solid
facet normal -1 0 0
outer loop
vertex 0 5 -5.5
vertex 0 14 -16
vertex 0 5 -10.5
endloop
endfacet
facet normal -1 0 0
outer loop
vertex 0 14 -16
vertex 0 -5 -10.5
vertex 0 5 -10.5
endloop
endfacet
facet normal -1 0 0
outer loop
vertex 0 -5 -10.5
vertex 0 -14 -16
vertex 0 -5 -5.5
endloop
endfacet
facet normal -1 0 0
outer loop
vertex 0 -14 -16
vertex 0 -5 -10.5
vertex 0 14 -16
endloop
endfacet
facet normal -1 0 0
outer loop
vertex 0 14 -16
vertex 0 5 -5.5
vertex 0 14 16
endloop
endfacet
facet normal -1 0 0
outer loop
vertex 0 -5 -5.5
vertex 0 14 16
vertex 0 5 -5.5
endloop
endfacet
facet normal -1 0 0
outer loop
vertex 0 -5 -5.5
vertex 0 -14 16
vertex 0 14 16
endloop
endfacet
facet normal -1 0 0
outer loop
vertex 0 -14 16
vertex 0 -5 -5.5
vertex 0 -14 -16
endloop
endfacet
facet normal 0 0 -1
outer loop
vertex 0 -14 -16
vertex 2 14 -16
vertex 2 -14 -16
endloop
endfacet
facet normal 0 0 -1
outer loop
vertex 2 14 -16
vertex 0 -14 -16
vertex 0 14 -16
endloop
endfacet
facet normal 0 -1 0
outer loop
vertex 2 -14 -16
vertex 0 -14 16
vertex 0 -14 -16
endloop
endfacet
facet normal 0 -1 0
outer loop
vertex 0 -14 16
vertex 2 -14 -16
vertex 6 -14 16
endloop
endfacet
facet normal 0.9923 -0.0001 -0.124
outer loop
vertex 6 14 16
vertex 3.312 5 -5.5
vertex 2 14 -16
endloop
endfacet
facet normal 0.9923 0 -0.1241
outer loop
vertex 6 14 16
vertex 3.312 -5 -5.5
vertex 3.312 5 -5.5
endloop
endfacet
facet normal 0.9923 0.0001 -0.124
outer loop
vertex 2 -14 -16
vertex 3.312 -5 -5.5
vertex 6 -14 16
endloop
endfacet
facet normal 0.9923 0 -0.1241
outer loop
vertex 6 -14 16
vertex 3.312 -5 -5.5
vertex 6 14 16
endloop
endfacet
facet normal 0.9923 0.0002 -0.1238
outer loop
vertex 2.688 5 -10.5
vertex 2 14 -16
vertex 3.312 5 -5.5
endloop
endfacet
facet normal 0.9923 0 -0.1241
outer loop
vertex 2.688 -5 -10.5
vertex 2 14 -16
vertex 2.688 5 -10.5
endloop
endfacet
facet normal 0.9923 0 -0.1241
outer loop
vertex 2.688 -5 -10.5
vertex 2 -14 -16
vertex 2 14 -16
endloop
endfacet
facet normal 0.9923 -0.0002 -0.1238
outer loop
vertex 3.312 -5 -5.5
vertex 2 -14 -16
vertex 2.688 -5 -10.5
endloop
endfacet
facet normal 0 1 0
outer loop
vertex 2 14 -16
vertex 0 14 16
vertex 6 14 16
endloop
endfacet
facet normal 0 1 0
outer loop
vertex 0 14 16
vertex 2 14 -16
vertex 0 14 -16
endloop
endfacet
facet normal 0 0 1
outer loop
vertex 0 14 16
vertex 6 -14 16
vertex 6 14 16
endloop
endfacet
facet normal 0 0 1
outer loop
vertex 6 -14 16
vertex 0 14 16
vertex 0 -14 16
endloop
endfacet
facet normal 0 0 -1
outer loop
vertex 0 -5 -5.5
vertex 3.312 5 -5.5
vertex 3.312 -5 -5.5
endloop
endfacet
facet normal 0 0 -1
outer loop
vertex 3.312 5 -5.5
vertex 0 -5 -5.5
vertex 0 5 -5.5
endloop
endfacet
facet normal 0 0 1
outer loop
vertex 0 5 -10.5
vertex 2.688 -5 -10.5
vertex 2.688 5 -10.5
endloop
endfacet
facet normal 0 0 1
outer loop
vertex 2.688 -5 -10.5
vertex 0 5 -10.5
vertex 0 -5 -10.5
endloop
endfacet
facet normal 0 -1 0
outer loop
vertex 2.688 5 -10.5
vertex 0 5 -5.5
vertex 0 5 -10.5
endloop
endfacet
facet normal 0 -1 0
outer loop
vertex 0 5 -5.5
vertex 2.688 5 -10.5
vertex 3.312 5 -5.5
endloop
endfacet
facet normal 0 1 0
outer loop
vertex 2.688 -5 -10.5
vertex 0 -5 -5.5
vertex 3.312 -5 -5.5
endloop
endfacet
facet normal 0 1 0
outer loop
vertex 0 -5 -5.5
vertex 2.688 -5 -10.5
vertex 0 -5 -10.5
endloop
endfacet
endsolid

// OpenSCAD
/*
  Q8bot XIAO ESP32S3 Sense front-face camera bracket

  This lightweight bracket is a front-face camera plate for the XIAO ESP32S3
  Sense module, with a slight downward camera tilt.

  The robot-facing side is flat for double-sided tape. The whole printed plate
  is wedge-shaped, with one side thin and the other side thick, so the Sense
  module clips onto a tilted front face.

  Orientation: X is robot length, +X is forward, Y is width, Z is up.
  Print orientation: back plate flat on bed.
*/

$fn = 48;
eps = 0.12;

// -------------------- User parameters --------------------
bracket_w = 28;
bracket_h = 32;
bracket_t_min = 2.0;
bracket_t_max = 6.0;
corner_r = 2.4;

// XIAO ESP32S3 Sense published assembled size is about 21 x 17.8 x 15 mm. The
// printed bracket supports the back side only; the camera/front side faces out.
sense_len = 21.0;
sense_w = 17.8;
sense_outline_clearance = 0.8;

// Optional low side lips only help locate the module while tape cures; they do
// not cover the camera side.
locating_lip_t = 1.2;
locating_lip_h = 2.0;
locating_lip_len = 18.0;

// Cable relief for the Sense board and antenna pigtails.
cable_slot_w = 10;
cable_slot_h = 5;
cable_slot_z = -8;

module front_face_bracket() {
  difference() {
    union() {
      wedge_plate();
    }

    // Cable pass-through below the Sense footprint.
    translate([0, 0, cable_slot_z])
      cube([bracket_t_max + 2.0, cable_slot_w, cable_slot_h], center = true);
  }
}

function front_x_at_z(z) =
  bracket_t_min + (z + bracket_h / 2) / bracket_h * (bracket_t_max - bracket_t_min);

module wedge_plate() {
  // Back face is flat at X=0. Front face gets thicker toward +Z, tilting the
  // Sense module downward when installed on a vertical robot face.
  polyhedron(
    points=[
      [0, -bracket_w / 2, -bracket_h / 2],
      [0,  bracket_w / 2, -bracket_h / 2],
      [0,  bracket_w / 2,  bracket_h / 2],
      [0, -bracket_w / 2,  bracket_h / 2],
      [front_x_at_z(-bracket_h / 2), -bracket_w / 2, -bracket_h / 2],
      [front_x_at_z(-bracket_h / 2),  bracket_w / 2, -bracket_h / 2],
      [front_x_at_z( bracket_h / 2),  bracket_w / 2,  bracket_h / 2],
      [front_x_at_z( bracket_h / 2), -bracket_w / 2,  bracket_h / 2]
    ],
    faces=[
      [0, 1, 2, 3],
      [4, 7, 6, 5],
      [0, 4, 5, 1],
      [1, 5, 6, 2],
      [2, 6, 7, 3],
      [3, 7, 4, 0]
    ]
  );
}

front_face_bracket();
